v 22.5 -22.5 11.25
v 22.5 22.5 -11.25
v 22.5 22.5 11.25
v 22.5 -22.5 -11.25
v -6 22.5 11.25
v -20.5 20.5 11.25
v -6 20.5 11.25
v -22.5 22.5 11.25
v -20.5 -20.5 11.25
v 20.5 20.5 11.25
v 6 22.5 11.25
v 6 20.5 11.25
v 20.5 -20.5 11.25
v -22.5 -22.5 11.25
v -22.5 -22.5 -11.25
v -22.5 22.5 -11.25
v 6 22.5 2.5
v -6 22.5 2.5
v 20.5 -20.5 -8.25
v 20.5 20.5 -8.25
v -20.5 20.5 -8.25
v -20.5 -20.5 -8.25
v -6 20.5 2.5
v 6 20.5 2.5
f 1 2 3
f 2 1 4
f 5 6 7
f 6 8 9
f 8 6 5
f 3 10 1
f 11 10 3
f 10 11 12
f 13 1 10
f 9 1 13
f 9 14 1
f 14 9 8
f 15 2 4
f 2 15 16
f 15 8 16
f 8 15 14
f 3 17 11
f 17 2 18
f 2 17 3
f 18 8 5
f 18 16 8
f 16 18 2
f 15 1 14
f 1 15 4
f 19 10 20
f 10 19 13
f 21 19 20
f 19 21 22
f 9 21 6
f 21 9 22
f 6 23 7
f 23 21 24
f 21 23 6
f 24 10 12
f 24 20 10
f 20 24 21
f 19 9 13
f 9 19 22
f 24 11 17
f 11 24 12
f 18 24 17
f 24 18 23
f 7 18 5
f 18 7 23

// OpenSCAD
OUTER_WIDTH = 45;
WALL_THICKNESS = 2;

inner_width = OUTER_WIDTH -(WALL_THICKNESS*2);


difference(){
    difference(){
        cube([OUTER_WIDTH,OUTER_WIDTH,OUTER_WIDTH/2],center=true);
        translate([0,0,WALL_THICKNESS]){
            cube([inner_width,inner_width,inner_width/2],center=true);
        }
    }
    translate([0,OUTER_WIDTH/2,(OUTER_WIDTH/2)-10]){
        cube([12,5,20],center=true);
    }

}
